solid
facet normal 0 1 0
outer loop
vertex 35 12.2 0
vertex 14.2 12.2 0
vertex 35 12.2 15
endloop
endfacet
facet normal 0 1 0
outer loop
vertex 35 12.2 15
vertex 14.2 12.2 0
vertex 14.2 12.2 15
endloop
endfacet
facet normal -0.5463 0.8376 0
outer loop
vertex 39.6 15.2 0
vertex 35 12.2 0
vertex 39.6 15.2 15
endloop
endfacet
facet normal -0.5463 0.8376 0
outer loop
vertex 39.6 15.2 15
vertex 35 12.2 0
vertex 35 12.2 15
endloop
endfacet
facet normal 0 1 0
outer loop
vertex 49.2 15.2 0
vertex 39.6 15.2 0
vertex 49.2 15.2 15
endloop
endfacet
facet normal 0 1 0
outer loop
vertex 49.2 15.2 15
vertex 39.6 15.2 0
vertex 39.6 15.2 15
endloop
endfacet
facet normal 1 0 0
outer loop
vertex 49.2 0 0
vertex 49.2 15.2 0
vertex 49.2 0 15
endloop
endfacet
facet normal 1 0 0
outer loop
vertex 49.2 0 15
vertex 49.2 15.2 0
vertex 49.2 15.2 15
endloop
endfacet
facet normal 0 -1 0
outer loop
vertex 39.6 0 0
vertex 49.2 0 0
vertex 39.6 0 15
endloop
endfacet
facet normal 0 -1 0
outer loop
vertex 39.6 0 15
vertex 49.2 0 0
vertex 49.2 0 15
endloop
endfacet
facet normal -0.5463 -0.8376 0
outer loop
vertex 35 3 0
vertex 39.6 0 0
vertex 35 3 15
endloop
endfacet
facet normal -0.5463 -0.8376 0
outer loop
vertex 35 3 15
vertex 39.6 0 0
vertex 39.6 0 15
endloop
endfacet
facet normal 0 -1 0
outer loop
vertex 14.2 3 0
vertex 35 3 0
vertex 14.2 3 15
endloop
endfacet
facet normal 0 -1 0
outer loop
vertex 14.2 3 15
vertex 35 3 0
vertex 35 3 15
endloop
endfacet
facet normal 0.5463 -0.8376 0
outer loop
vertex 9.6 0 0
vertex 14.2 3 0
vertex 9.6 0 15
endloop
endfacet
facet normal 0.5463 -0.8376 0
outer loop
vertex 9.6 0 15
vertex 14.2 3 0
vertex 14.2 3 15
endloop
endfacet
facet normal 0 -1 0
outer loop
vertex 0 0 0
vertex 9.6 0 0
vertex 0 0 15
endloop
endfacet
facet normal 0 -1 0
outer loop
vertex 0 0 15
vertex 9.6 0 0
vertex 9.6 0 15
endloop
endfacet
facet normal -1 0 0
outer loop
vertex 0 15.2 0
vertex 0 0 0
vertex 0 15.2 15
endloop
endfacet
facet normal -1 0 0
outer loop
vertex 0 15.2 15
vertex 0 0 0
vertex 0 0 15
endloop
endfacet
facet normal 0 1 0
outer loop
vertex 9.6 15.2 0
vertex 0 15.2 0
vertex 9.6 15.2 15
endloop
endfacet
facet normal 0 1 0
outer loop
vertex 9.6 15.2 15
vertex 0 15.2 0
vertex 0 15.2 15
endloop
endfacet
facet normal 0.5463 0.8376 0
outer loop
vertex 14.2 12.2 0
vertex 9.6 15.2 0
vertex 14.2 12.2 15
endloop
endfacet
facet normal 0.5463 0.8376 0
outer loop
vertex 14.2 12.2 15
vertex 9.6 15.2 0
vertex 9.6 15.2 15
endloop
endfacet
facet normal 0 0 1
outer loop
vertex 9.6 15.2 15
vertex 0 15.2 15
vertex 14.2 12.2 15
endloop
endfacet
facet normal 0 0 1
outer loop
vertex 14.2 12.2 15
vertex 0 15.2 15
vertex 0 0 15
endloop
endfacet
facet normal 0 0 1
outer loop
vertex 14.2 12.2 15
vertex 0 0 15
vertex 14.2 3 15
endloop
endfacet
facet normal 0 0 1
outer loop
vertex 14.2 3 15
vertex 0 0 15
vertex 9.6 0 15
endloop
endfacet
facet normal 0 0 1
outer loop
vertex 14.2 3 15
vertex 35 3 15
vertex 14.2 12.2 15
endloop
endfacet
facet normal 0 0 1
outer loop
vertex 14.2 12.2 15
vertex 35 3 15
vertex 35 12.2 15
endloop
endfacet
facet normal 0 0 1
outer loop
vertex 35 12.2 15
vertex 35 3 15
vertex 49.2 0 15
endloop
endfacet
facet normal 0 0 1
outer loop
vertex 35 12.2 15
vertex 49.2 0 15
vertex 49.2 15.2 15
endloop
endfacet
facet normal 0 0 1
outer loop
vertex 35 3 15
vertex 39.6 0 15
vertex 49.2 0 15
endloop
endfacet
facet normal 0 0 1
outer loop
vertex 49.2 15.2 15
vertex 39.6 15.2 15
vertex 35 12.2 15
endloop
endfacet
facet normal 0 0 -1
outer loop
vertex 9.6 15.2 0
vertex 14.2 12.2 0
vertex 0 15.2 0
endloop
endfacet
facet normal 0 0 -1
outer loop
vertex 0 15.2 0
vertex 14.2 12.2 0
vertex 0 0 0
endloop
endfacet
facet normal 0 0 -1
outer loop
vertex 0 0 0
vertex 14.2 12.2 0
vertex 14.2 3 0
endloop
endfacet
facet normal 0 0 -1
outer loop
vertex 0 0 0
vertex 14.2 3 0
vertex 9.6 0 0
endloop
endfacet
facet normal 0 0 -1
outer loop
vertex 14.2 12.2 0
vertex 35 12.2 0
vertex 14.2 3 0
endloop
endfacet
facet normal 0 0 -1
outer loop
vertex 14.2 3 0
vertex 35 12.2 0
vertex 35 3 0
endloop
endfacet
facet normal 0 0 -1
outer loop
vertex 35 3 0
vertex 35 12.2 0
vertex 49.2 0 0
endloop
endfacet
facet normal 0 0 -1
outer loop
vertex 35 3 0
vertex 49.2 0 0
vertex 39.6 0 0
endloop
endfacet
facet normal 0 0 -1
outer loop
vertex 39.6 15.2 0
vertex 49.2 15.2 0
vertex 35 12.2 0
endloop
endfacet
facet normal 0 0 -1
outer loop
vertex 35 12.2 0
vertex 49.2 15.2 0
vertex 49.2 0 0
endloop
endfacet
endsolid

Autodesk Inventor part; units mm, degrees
ref_plane "YZ Plane" through (0, 0, 0) normal (1, 0, 0) x (0, 1, 0)
ref_plane "XZ Plane" through (0, 0, 0) normal (0, 1, 0) x (-1, 0, 0)
ref_plane "XY Plane" through (0, 0, 0) normal (0, 0, 1) x (1, 0, 0)
sketch "Boceto1" plane through (0, 0, 0) normal (0, 0, 1) x (1, 0, 0)
  line L0 (0, 0) -> (0, 15.2)
  line L1 (0, 15.2) -> (9.6, 15.2)
  line L2 (0, 0) -> (9.6, 0)
  line L3 (9.6, 0) -> (14.6, 0) construction
  line L4 (14.6, 0) -> (24.6, 0) construction
  line L5 (24.6, 0) -> (24.6, 3) construction
  line L6 (24.6, 3) -> (14.2, 3)
  line L7 (14.2, 3) -> (9.6, 0)
  line L8 (24.6, 3) -> (24.6, 12.2)
  line L9 (24.6, 12.2) -> (14.2, 12.2)
  line L10 (14.2, 12.2) -> (9.6, 15.2)
  line L11 (49.2, 0) -> (49.2, 15.2)
  line L12 (49.2, 15.2) -> (39.6, 15.2)
  line L13 (49.2, 0) -> (39.6, 0)
  line L14 (39.6, 0) -> (34.6, 0) construction
  line L15 (34.6, 0) -> (24.6, 0) construction
  line L16 (24.6, 3) -> (35, 3)
  line L17 (35, 3) -> (39.6, 0)
  line L18 (24.6, 12.2) -> (35, 12.2)
  line L19 (35, 12.2) -> (39.6, 15.2)
  dimension "d0" = 15.2
  dimension "d1" = 9.6
  dimension "d2" = 9.6
  dimension "d3" = 5
  dimension "d4" = 10
  dimension "d5" = 3
  dimension "d6" = 10.4
  dimension "d7" = 9.2
  dimension "d8" = 10.4
extrude "Extrusión1" add sketch "Boceto1" along normal blind 15
equation "\"d4\" = Largo_seccion"
equation "\"d5\" = Espesor_centro"
equation "\"Largo_seccion\" = 10"
equation "\"Espesor_centro\" = 3"
properties part number "Spline_parametrizado"
